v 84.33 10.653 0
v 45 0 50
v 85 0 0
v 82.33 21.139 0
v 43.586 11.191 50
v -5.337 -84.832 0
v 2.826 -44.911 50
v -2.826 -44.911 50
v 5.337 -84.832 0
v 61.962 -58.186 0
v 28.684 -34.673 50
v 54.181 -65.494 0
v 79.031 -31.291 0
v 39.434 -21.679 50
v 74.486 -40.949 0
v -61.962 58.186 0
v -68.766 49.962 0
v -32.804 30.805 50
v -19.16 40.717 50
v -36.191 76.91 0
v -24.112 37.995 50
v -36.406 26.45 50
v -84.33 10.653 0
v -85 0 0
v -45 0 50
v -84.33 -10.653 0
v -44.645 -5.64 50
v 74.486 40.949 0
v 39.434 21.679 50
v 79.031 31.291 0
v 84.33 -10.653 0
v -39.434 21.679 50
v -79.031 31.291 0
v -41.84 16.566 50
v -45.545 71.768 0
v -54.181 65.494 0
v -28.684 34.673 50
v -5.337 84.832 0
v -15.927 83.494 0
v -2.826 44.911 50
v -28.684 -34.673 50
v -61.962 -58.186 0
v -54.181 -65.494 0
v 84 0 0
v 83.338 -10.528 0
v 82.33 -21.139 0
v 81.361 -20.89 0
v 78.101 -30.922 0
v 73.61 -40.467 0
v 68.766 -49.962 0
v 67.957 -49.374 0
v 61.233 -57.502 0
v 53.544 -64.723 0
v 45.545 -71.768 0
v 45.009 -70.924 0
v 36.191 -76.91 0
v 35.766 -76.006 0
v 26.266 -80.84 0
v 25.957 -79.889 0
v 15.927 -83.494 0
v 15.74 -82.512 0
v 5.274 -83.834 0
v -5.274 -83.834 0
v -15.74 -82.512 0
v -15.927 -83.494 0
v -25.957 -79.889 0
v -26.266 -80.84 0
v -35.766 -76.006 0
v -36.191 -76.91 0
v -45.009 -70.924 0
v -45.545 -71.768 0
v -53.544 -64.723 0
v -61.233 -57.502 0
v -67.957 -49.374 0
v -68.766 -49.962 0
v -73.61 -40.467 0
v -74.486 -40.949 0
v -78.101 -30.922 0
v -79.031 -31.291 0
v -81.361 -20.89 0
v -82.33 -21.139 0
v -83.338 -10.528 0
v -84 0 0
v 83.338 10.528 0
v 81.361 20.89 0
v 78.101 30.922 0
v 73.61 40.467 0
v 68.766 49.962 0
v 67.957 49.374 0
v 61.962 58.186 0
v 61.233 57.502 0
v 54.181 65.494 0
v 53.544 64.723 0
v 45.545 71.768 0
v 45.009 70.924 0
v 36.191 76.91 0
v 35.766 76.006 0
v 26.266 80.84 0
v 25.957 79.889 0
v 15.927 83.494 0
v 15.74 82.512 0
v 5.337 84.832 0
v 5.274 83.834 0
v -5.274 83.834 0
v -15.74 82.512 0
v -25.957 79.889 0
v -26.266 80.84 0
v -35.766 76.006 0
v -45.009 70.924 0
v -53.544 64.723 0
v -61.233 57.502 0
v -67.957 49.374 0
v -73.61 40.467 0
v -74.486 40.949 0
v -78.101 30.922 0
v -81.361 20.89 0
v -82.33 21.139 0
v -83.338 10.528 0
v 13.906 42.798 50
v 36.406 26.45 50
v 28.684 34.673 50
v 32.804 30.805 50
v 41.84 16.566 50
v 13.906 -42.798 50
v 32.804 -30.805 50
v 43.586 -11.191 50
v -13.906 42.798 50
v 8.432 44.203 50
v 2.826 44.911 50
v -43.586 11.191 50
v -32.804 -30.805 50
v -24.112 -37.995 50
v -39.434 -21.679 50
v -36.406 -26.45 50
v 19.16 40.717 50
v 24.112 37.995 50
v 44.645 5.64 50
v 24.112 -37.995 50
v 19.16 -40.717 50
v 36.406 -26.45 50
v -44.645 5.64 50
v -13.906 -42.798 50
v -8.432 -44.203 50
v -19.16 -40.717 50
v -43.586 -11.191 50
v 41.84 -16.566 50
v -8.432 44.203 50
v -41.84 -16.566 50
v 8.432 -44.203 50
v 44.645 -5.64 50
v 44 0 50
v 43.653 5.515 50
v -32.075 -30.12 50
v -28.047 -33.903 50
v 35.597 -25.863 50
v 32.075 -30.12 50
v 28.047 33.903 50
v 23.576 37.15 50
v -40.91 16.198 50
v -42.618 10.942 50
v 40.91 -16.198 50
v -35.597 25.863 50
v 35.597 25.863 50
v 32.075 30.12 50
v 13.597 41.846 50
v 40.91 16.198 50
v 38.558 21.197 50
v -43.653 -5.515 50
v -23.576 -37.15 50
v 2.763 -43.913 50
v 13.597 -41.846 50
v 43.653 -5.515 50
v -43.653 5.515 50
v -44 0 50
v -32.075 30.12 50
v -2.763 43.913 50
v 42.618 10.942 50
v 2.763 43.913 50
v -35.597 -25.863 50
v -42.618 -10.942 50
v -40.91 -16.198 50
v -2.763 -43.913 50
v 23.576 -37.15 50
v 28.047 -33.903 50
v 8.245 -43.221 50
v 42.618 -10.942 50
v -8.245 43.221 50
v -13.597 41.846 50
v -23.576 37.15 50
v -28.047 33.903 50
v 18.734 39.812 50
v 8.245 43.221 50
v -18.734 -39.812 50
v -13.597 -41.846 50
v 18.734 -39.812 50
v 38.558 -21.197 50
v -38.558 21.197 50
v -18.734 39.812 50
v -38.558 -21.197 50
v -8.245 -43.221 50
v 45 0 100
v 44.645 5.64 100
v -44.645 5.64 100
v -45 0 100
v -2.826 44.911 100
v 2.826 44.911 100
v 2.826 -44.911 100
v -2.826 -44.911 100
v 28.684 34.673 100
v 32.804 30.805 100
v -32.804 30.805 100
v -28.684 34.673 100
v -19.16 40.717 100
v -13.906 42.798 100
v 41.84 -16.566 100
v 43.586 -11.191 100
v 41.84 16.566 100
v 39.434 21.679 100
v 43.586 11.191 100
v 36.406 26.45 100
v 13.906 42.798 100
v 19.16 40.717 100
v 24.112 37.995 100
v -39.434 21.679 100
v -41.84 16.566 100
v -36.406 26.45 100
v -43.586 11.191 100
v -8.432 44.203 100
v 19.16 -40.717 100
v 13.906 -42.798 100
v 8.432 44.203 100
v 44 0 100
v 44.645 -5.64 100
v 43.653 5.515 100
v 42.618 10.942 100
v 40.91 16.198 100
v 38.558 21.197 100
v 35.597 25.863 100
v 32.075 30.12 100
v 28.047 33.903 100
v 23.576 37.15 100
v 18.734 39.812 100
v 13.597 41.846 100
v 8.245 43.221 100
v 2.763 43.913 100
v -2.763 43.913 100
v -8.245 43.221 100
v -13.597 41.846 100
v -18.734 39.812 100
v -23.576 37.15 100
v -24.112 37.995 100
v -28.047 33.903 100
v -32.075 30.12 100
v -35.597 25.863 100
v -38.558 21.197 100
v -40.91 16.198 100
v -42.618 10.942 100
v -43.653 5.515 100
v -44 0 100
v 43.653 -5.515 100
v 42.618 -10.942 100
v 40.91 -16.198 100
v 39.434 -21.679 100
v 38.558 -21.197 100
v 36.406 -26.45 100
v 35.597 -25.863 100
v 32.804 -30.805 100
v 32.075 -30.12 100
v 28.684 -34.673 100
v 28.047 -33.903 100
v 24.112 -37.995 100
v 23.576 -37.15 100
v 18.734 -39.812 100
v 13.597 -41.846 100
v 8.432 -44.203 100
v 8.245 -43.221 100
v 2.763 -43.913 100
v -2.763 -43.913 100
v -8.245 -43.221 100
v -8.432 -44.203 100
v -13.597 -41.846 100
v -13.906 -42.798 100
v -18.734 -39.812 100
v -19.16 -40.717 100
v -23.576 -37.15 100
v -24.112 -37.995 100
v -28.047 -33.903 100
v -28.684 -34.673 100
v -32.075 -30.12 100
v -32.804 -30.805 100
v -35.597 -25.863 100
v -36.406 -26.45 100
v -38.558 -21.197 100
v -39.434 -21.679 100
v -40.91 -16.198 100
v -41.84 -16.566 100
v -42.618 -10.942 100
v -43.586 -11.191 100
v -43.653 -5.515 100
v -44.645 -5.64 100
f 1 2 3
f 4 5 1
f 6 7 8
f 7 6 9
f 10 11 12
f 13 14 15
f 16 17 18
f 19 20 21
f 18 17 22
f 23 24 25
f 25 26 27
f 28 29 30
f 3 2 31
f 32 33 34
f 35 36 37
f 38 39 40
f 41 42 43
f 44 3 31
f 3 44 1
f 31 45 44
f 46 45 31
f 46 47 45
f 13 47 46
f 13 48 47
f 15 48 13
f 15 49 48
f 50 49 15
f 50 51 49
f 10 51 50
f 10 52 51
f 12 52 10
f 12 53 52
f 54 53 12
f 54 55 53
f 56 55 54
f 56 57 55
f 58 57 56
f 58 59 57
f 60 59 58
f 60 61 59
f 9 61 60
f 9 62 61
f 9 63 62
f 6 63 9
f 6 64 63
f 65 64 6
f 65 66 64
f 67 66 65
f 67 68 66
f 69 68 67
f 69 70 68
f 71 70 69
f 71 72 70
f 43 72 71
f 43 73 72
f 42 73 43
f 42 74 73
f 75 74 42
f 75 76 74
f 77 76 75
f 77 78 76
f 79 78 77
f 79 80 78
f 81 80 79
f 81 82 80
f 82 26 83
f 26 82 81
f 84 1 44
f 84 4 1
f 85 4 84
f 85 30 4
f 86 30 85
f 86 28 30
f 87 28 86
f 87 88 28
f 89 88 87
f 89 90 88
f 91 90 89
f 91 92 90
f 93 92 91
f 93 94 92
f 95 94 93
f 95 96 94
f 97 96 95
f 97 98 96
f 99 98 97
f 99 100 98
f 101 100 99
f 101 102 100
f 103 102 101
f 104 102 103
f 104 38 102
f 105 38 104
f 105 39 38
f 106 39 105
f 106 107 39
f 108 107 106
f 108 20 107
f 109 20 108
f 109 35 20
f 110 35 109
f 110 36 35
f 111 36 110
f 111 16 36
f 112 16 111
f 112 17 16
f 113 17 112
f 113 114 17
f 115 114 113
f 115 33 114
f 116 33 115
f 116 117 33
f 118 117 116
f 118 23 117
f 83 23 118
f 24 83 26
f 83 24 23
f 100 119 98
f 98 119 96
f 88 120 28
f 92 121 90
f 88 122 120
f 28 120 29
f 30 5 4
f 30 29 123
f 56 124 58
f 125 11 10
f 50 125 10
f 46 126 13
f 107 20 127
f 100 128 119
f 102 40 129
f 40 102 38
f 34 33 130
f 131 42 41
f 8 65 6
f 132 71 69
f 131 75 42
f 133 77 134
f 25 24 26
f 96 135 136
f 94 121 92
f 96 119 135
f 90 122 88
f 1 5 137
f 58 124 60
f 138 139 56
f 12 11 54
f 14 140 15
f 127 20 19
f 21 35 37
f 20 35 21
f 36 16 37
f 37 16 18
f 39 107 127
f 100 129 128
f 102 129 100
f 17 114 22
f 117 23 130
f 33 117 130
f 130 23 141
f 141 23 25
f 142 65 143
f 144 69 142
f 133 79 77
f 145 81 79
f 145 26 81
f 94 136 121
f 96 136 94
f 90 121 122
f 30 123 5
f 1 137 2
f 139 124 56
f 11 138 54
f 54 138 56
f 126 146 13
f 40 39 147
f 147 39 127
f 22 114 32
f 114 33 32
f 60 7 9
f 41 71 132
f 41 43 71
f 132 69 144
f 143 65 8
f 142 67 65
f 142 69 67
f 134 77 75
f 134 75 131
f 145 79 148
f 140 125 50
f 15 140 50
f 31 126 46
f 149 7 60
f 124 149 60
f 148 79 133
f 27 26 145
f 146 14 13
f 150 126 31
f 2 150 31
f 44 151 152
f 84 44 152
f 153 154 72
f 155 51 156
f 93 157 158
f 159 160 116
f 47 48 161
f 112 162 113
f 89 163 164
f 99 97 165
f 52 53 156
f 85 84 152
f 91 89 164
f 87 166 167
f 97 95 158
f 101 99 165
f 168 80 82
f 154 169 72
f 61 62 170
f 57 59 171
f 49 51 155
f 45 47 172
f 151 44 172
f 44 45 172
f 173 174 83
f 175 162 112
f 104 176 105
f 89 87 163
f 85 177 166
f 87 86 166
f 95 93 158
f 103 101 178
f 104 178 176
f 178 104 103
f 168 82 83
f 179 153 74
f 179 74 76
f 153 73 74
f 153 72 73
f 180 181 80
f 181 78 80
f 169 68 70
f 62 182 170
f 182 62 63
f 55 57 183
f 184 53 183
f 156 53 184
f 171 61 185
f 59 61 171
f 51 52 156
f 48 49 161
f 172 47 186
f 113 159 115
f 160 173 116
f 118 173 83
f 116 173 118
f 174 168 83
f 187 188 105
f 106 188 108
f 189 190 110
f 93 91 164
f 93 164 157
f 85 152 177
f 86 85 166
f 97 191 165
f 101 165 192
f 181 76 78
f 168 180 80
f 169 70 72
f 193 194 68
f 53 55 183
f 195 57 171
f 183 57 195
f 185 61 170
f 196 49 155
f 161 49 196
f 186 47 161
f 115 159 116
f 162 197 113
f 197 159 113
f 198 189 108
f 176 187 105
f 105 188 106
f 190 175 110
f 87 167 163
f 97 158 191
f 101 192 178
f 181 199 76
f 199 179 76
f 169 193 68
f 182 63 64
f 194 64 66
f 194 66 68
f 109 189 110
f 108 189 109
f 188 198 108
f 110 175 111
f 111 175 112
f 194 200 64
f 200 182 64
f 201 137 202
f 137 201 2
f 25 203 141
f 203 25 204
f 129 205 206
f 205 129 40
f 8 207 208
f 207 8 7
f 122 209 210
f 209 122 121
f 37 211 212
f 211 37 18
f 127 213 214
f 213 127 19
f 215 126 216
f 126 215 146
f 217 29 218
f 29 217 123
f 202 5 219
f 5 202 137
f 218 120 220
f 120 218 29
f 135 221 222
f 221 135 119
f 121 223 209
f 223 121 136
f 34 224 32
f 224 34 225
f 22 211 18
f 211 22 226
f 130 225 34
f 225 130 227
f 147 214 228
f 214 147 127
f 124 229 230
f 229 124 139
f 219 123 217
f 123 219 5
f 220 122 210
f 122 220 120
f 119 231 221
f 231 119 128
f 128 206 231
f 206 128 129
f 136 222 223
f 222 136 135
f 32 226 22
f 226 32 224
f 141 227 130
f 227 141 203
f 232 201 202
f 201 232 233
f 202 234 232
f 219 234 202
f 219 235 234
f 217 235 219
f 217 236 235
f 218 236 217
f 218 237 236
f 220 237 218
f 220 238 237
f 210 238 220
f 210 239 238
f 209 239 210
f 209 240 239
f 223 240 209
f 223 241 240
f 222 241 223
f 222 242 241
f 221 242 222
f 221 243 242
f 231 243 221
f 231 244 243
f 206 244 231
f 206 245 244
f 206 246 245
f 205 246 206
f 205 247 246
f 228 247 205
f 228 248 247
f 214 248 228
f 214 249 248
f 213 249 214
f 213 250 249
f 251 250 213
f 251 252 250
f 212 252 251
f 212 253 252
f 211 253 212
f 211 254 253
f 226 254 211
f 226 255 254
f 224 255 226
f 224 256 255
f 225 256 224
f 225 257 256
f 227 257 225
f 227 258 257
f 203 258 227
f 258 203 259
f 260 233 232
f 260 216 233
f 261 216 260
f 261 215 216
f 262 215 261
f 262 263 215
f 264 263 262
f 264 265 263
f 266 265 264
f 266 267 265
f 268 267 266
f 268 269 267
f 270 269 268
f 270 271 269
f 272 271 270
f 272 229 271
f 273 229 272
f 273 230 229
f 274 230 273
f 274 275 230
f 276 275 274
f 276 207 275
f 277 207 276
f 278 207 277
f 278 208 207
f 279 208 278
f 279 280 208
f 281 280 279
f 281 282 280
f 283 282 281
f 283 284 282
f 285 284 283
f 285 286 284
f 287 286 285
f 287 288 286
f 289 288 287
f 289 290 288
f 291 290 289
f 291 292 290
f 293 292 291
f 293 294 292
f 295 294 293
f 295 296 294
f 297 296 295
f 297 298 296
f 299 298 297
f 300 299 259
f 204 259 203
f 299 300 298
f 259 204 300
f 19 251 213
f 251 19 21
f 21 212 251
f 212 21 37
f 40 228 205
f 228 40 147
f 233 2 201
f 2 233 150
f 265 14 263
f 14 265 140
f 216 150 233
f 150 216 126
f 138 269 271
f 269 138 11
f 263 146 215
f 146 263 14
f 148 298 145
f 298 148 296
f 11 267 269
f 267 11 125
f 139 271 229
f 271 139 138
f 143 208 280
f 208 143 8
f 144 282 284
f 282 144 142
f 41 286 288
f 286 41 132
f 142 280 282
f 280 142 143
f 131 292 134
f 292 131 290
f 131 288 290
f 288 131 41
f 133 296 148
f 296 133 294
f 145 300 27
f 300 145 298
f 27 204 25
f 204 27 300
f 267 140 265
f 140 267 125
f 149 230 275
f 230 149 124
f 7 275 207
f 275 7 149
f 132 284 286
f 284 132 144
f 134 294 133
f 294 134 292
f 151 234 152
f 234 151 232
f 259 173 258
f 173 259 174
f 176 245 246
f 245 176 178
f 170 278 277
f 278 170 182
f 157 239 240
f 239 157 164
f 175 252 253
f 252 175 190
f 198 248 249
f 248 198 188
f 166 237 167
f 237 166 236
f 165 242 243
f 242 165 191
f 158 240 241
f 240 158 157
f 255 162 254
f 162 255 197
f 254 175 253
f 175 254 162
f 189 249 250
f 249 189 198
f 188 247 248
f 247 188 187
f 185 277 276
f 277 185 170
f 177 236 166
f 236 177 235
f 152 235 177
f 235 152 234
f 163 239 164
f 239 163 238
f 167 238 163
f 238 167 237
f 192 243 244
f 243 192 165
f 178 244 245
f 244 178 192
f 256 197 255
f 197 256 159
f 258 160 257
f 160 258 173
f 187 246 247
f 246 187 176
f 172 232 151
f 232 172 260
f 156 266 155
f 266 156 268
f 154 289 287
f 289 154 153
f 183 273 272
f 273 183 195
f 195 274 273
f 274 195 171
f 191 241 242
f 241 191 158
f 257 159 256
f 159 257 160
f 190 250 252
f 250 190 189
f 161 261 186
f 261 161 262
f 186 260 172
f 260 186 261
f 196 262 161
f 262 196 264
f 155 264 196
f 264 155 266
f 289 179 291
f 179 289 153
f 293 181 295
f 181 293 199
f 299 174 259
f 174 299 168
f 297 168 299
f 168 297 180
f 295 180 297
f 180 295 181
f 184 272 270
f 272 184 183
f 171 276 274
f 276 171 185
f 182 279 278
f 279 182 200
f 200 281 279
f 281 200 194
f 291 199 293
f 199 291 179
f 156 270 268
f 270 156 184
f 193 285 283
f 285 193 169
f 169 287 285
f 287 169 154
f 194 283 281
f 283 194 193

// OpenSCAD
$fn = 50;


difference() {
	union() {
		translate(v = [0, 0, 0]) {
			rotate(a = [0, 0, 0]) {
				difference() {
					union() {
						cylinder(h = 50, r1 = 85.0000000000, r2 = 45.0000000000);
					}
					union() {
						cylinder(h = 50, r1 = 84.0000000000, r2 = 44.0000000000);
					}
				}
			}
		}
		translate(v = [0, 0, 50]) {
			rotate(a = [0, 0, 0]) {
				difference() {
					union() {
						cylinder(h = 50, r = 45.0000000000);
					}
					union() {
						cylinder(h = 50, r = 44.0000000000);
					}
				}
			}
		}
		*color(alpha = 1.0000000000, c = "gray") {
			translate(v = [0, 14, 0]) {
				linear_extrude(height = 1) {
					text(font = "Arial:style=Bold", halign = "center", size = 4.5000000000, text = "COMMENT description oobb_cylinder_hollow_shape_p_type_all_save_type_1_width_1_height_1_thickness_170_mm_top_90_mm_bottom_extra_85.0_r1_45.0_r2_1_wall_thickness_50_h", valign = "center");
				}
			}
		}
		*color(alpha = 1.0000000000, c = "gray") {
			translate(v = [0, 14, 50]) {
				linear_extrude(height = 1) {
					text(font = "Arial:style=Bold", halign = "center", size = 4.5000000000, text = "COMMENT description oobb_cylinder_hollow_shape_p_type_0_0_50_pos_all_save_type_1_width_1_height_1_thickness_170_mm_top_90_mm_bottom_extra_45.0_r_1_wall_thickness_50_h", valign = "center");
				}
			}
		}
	}
	union();
}
